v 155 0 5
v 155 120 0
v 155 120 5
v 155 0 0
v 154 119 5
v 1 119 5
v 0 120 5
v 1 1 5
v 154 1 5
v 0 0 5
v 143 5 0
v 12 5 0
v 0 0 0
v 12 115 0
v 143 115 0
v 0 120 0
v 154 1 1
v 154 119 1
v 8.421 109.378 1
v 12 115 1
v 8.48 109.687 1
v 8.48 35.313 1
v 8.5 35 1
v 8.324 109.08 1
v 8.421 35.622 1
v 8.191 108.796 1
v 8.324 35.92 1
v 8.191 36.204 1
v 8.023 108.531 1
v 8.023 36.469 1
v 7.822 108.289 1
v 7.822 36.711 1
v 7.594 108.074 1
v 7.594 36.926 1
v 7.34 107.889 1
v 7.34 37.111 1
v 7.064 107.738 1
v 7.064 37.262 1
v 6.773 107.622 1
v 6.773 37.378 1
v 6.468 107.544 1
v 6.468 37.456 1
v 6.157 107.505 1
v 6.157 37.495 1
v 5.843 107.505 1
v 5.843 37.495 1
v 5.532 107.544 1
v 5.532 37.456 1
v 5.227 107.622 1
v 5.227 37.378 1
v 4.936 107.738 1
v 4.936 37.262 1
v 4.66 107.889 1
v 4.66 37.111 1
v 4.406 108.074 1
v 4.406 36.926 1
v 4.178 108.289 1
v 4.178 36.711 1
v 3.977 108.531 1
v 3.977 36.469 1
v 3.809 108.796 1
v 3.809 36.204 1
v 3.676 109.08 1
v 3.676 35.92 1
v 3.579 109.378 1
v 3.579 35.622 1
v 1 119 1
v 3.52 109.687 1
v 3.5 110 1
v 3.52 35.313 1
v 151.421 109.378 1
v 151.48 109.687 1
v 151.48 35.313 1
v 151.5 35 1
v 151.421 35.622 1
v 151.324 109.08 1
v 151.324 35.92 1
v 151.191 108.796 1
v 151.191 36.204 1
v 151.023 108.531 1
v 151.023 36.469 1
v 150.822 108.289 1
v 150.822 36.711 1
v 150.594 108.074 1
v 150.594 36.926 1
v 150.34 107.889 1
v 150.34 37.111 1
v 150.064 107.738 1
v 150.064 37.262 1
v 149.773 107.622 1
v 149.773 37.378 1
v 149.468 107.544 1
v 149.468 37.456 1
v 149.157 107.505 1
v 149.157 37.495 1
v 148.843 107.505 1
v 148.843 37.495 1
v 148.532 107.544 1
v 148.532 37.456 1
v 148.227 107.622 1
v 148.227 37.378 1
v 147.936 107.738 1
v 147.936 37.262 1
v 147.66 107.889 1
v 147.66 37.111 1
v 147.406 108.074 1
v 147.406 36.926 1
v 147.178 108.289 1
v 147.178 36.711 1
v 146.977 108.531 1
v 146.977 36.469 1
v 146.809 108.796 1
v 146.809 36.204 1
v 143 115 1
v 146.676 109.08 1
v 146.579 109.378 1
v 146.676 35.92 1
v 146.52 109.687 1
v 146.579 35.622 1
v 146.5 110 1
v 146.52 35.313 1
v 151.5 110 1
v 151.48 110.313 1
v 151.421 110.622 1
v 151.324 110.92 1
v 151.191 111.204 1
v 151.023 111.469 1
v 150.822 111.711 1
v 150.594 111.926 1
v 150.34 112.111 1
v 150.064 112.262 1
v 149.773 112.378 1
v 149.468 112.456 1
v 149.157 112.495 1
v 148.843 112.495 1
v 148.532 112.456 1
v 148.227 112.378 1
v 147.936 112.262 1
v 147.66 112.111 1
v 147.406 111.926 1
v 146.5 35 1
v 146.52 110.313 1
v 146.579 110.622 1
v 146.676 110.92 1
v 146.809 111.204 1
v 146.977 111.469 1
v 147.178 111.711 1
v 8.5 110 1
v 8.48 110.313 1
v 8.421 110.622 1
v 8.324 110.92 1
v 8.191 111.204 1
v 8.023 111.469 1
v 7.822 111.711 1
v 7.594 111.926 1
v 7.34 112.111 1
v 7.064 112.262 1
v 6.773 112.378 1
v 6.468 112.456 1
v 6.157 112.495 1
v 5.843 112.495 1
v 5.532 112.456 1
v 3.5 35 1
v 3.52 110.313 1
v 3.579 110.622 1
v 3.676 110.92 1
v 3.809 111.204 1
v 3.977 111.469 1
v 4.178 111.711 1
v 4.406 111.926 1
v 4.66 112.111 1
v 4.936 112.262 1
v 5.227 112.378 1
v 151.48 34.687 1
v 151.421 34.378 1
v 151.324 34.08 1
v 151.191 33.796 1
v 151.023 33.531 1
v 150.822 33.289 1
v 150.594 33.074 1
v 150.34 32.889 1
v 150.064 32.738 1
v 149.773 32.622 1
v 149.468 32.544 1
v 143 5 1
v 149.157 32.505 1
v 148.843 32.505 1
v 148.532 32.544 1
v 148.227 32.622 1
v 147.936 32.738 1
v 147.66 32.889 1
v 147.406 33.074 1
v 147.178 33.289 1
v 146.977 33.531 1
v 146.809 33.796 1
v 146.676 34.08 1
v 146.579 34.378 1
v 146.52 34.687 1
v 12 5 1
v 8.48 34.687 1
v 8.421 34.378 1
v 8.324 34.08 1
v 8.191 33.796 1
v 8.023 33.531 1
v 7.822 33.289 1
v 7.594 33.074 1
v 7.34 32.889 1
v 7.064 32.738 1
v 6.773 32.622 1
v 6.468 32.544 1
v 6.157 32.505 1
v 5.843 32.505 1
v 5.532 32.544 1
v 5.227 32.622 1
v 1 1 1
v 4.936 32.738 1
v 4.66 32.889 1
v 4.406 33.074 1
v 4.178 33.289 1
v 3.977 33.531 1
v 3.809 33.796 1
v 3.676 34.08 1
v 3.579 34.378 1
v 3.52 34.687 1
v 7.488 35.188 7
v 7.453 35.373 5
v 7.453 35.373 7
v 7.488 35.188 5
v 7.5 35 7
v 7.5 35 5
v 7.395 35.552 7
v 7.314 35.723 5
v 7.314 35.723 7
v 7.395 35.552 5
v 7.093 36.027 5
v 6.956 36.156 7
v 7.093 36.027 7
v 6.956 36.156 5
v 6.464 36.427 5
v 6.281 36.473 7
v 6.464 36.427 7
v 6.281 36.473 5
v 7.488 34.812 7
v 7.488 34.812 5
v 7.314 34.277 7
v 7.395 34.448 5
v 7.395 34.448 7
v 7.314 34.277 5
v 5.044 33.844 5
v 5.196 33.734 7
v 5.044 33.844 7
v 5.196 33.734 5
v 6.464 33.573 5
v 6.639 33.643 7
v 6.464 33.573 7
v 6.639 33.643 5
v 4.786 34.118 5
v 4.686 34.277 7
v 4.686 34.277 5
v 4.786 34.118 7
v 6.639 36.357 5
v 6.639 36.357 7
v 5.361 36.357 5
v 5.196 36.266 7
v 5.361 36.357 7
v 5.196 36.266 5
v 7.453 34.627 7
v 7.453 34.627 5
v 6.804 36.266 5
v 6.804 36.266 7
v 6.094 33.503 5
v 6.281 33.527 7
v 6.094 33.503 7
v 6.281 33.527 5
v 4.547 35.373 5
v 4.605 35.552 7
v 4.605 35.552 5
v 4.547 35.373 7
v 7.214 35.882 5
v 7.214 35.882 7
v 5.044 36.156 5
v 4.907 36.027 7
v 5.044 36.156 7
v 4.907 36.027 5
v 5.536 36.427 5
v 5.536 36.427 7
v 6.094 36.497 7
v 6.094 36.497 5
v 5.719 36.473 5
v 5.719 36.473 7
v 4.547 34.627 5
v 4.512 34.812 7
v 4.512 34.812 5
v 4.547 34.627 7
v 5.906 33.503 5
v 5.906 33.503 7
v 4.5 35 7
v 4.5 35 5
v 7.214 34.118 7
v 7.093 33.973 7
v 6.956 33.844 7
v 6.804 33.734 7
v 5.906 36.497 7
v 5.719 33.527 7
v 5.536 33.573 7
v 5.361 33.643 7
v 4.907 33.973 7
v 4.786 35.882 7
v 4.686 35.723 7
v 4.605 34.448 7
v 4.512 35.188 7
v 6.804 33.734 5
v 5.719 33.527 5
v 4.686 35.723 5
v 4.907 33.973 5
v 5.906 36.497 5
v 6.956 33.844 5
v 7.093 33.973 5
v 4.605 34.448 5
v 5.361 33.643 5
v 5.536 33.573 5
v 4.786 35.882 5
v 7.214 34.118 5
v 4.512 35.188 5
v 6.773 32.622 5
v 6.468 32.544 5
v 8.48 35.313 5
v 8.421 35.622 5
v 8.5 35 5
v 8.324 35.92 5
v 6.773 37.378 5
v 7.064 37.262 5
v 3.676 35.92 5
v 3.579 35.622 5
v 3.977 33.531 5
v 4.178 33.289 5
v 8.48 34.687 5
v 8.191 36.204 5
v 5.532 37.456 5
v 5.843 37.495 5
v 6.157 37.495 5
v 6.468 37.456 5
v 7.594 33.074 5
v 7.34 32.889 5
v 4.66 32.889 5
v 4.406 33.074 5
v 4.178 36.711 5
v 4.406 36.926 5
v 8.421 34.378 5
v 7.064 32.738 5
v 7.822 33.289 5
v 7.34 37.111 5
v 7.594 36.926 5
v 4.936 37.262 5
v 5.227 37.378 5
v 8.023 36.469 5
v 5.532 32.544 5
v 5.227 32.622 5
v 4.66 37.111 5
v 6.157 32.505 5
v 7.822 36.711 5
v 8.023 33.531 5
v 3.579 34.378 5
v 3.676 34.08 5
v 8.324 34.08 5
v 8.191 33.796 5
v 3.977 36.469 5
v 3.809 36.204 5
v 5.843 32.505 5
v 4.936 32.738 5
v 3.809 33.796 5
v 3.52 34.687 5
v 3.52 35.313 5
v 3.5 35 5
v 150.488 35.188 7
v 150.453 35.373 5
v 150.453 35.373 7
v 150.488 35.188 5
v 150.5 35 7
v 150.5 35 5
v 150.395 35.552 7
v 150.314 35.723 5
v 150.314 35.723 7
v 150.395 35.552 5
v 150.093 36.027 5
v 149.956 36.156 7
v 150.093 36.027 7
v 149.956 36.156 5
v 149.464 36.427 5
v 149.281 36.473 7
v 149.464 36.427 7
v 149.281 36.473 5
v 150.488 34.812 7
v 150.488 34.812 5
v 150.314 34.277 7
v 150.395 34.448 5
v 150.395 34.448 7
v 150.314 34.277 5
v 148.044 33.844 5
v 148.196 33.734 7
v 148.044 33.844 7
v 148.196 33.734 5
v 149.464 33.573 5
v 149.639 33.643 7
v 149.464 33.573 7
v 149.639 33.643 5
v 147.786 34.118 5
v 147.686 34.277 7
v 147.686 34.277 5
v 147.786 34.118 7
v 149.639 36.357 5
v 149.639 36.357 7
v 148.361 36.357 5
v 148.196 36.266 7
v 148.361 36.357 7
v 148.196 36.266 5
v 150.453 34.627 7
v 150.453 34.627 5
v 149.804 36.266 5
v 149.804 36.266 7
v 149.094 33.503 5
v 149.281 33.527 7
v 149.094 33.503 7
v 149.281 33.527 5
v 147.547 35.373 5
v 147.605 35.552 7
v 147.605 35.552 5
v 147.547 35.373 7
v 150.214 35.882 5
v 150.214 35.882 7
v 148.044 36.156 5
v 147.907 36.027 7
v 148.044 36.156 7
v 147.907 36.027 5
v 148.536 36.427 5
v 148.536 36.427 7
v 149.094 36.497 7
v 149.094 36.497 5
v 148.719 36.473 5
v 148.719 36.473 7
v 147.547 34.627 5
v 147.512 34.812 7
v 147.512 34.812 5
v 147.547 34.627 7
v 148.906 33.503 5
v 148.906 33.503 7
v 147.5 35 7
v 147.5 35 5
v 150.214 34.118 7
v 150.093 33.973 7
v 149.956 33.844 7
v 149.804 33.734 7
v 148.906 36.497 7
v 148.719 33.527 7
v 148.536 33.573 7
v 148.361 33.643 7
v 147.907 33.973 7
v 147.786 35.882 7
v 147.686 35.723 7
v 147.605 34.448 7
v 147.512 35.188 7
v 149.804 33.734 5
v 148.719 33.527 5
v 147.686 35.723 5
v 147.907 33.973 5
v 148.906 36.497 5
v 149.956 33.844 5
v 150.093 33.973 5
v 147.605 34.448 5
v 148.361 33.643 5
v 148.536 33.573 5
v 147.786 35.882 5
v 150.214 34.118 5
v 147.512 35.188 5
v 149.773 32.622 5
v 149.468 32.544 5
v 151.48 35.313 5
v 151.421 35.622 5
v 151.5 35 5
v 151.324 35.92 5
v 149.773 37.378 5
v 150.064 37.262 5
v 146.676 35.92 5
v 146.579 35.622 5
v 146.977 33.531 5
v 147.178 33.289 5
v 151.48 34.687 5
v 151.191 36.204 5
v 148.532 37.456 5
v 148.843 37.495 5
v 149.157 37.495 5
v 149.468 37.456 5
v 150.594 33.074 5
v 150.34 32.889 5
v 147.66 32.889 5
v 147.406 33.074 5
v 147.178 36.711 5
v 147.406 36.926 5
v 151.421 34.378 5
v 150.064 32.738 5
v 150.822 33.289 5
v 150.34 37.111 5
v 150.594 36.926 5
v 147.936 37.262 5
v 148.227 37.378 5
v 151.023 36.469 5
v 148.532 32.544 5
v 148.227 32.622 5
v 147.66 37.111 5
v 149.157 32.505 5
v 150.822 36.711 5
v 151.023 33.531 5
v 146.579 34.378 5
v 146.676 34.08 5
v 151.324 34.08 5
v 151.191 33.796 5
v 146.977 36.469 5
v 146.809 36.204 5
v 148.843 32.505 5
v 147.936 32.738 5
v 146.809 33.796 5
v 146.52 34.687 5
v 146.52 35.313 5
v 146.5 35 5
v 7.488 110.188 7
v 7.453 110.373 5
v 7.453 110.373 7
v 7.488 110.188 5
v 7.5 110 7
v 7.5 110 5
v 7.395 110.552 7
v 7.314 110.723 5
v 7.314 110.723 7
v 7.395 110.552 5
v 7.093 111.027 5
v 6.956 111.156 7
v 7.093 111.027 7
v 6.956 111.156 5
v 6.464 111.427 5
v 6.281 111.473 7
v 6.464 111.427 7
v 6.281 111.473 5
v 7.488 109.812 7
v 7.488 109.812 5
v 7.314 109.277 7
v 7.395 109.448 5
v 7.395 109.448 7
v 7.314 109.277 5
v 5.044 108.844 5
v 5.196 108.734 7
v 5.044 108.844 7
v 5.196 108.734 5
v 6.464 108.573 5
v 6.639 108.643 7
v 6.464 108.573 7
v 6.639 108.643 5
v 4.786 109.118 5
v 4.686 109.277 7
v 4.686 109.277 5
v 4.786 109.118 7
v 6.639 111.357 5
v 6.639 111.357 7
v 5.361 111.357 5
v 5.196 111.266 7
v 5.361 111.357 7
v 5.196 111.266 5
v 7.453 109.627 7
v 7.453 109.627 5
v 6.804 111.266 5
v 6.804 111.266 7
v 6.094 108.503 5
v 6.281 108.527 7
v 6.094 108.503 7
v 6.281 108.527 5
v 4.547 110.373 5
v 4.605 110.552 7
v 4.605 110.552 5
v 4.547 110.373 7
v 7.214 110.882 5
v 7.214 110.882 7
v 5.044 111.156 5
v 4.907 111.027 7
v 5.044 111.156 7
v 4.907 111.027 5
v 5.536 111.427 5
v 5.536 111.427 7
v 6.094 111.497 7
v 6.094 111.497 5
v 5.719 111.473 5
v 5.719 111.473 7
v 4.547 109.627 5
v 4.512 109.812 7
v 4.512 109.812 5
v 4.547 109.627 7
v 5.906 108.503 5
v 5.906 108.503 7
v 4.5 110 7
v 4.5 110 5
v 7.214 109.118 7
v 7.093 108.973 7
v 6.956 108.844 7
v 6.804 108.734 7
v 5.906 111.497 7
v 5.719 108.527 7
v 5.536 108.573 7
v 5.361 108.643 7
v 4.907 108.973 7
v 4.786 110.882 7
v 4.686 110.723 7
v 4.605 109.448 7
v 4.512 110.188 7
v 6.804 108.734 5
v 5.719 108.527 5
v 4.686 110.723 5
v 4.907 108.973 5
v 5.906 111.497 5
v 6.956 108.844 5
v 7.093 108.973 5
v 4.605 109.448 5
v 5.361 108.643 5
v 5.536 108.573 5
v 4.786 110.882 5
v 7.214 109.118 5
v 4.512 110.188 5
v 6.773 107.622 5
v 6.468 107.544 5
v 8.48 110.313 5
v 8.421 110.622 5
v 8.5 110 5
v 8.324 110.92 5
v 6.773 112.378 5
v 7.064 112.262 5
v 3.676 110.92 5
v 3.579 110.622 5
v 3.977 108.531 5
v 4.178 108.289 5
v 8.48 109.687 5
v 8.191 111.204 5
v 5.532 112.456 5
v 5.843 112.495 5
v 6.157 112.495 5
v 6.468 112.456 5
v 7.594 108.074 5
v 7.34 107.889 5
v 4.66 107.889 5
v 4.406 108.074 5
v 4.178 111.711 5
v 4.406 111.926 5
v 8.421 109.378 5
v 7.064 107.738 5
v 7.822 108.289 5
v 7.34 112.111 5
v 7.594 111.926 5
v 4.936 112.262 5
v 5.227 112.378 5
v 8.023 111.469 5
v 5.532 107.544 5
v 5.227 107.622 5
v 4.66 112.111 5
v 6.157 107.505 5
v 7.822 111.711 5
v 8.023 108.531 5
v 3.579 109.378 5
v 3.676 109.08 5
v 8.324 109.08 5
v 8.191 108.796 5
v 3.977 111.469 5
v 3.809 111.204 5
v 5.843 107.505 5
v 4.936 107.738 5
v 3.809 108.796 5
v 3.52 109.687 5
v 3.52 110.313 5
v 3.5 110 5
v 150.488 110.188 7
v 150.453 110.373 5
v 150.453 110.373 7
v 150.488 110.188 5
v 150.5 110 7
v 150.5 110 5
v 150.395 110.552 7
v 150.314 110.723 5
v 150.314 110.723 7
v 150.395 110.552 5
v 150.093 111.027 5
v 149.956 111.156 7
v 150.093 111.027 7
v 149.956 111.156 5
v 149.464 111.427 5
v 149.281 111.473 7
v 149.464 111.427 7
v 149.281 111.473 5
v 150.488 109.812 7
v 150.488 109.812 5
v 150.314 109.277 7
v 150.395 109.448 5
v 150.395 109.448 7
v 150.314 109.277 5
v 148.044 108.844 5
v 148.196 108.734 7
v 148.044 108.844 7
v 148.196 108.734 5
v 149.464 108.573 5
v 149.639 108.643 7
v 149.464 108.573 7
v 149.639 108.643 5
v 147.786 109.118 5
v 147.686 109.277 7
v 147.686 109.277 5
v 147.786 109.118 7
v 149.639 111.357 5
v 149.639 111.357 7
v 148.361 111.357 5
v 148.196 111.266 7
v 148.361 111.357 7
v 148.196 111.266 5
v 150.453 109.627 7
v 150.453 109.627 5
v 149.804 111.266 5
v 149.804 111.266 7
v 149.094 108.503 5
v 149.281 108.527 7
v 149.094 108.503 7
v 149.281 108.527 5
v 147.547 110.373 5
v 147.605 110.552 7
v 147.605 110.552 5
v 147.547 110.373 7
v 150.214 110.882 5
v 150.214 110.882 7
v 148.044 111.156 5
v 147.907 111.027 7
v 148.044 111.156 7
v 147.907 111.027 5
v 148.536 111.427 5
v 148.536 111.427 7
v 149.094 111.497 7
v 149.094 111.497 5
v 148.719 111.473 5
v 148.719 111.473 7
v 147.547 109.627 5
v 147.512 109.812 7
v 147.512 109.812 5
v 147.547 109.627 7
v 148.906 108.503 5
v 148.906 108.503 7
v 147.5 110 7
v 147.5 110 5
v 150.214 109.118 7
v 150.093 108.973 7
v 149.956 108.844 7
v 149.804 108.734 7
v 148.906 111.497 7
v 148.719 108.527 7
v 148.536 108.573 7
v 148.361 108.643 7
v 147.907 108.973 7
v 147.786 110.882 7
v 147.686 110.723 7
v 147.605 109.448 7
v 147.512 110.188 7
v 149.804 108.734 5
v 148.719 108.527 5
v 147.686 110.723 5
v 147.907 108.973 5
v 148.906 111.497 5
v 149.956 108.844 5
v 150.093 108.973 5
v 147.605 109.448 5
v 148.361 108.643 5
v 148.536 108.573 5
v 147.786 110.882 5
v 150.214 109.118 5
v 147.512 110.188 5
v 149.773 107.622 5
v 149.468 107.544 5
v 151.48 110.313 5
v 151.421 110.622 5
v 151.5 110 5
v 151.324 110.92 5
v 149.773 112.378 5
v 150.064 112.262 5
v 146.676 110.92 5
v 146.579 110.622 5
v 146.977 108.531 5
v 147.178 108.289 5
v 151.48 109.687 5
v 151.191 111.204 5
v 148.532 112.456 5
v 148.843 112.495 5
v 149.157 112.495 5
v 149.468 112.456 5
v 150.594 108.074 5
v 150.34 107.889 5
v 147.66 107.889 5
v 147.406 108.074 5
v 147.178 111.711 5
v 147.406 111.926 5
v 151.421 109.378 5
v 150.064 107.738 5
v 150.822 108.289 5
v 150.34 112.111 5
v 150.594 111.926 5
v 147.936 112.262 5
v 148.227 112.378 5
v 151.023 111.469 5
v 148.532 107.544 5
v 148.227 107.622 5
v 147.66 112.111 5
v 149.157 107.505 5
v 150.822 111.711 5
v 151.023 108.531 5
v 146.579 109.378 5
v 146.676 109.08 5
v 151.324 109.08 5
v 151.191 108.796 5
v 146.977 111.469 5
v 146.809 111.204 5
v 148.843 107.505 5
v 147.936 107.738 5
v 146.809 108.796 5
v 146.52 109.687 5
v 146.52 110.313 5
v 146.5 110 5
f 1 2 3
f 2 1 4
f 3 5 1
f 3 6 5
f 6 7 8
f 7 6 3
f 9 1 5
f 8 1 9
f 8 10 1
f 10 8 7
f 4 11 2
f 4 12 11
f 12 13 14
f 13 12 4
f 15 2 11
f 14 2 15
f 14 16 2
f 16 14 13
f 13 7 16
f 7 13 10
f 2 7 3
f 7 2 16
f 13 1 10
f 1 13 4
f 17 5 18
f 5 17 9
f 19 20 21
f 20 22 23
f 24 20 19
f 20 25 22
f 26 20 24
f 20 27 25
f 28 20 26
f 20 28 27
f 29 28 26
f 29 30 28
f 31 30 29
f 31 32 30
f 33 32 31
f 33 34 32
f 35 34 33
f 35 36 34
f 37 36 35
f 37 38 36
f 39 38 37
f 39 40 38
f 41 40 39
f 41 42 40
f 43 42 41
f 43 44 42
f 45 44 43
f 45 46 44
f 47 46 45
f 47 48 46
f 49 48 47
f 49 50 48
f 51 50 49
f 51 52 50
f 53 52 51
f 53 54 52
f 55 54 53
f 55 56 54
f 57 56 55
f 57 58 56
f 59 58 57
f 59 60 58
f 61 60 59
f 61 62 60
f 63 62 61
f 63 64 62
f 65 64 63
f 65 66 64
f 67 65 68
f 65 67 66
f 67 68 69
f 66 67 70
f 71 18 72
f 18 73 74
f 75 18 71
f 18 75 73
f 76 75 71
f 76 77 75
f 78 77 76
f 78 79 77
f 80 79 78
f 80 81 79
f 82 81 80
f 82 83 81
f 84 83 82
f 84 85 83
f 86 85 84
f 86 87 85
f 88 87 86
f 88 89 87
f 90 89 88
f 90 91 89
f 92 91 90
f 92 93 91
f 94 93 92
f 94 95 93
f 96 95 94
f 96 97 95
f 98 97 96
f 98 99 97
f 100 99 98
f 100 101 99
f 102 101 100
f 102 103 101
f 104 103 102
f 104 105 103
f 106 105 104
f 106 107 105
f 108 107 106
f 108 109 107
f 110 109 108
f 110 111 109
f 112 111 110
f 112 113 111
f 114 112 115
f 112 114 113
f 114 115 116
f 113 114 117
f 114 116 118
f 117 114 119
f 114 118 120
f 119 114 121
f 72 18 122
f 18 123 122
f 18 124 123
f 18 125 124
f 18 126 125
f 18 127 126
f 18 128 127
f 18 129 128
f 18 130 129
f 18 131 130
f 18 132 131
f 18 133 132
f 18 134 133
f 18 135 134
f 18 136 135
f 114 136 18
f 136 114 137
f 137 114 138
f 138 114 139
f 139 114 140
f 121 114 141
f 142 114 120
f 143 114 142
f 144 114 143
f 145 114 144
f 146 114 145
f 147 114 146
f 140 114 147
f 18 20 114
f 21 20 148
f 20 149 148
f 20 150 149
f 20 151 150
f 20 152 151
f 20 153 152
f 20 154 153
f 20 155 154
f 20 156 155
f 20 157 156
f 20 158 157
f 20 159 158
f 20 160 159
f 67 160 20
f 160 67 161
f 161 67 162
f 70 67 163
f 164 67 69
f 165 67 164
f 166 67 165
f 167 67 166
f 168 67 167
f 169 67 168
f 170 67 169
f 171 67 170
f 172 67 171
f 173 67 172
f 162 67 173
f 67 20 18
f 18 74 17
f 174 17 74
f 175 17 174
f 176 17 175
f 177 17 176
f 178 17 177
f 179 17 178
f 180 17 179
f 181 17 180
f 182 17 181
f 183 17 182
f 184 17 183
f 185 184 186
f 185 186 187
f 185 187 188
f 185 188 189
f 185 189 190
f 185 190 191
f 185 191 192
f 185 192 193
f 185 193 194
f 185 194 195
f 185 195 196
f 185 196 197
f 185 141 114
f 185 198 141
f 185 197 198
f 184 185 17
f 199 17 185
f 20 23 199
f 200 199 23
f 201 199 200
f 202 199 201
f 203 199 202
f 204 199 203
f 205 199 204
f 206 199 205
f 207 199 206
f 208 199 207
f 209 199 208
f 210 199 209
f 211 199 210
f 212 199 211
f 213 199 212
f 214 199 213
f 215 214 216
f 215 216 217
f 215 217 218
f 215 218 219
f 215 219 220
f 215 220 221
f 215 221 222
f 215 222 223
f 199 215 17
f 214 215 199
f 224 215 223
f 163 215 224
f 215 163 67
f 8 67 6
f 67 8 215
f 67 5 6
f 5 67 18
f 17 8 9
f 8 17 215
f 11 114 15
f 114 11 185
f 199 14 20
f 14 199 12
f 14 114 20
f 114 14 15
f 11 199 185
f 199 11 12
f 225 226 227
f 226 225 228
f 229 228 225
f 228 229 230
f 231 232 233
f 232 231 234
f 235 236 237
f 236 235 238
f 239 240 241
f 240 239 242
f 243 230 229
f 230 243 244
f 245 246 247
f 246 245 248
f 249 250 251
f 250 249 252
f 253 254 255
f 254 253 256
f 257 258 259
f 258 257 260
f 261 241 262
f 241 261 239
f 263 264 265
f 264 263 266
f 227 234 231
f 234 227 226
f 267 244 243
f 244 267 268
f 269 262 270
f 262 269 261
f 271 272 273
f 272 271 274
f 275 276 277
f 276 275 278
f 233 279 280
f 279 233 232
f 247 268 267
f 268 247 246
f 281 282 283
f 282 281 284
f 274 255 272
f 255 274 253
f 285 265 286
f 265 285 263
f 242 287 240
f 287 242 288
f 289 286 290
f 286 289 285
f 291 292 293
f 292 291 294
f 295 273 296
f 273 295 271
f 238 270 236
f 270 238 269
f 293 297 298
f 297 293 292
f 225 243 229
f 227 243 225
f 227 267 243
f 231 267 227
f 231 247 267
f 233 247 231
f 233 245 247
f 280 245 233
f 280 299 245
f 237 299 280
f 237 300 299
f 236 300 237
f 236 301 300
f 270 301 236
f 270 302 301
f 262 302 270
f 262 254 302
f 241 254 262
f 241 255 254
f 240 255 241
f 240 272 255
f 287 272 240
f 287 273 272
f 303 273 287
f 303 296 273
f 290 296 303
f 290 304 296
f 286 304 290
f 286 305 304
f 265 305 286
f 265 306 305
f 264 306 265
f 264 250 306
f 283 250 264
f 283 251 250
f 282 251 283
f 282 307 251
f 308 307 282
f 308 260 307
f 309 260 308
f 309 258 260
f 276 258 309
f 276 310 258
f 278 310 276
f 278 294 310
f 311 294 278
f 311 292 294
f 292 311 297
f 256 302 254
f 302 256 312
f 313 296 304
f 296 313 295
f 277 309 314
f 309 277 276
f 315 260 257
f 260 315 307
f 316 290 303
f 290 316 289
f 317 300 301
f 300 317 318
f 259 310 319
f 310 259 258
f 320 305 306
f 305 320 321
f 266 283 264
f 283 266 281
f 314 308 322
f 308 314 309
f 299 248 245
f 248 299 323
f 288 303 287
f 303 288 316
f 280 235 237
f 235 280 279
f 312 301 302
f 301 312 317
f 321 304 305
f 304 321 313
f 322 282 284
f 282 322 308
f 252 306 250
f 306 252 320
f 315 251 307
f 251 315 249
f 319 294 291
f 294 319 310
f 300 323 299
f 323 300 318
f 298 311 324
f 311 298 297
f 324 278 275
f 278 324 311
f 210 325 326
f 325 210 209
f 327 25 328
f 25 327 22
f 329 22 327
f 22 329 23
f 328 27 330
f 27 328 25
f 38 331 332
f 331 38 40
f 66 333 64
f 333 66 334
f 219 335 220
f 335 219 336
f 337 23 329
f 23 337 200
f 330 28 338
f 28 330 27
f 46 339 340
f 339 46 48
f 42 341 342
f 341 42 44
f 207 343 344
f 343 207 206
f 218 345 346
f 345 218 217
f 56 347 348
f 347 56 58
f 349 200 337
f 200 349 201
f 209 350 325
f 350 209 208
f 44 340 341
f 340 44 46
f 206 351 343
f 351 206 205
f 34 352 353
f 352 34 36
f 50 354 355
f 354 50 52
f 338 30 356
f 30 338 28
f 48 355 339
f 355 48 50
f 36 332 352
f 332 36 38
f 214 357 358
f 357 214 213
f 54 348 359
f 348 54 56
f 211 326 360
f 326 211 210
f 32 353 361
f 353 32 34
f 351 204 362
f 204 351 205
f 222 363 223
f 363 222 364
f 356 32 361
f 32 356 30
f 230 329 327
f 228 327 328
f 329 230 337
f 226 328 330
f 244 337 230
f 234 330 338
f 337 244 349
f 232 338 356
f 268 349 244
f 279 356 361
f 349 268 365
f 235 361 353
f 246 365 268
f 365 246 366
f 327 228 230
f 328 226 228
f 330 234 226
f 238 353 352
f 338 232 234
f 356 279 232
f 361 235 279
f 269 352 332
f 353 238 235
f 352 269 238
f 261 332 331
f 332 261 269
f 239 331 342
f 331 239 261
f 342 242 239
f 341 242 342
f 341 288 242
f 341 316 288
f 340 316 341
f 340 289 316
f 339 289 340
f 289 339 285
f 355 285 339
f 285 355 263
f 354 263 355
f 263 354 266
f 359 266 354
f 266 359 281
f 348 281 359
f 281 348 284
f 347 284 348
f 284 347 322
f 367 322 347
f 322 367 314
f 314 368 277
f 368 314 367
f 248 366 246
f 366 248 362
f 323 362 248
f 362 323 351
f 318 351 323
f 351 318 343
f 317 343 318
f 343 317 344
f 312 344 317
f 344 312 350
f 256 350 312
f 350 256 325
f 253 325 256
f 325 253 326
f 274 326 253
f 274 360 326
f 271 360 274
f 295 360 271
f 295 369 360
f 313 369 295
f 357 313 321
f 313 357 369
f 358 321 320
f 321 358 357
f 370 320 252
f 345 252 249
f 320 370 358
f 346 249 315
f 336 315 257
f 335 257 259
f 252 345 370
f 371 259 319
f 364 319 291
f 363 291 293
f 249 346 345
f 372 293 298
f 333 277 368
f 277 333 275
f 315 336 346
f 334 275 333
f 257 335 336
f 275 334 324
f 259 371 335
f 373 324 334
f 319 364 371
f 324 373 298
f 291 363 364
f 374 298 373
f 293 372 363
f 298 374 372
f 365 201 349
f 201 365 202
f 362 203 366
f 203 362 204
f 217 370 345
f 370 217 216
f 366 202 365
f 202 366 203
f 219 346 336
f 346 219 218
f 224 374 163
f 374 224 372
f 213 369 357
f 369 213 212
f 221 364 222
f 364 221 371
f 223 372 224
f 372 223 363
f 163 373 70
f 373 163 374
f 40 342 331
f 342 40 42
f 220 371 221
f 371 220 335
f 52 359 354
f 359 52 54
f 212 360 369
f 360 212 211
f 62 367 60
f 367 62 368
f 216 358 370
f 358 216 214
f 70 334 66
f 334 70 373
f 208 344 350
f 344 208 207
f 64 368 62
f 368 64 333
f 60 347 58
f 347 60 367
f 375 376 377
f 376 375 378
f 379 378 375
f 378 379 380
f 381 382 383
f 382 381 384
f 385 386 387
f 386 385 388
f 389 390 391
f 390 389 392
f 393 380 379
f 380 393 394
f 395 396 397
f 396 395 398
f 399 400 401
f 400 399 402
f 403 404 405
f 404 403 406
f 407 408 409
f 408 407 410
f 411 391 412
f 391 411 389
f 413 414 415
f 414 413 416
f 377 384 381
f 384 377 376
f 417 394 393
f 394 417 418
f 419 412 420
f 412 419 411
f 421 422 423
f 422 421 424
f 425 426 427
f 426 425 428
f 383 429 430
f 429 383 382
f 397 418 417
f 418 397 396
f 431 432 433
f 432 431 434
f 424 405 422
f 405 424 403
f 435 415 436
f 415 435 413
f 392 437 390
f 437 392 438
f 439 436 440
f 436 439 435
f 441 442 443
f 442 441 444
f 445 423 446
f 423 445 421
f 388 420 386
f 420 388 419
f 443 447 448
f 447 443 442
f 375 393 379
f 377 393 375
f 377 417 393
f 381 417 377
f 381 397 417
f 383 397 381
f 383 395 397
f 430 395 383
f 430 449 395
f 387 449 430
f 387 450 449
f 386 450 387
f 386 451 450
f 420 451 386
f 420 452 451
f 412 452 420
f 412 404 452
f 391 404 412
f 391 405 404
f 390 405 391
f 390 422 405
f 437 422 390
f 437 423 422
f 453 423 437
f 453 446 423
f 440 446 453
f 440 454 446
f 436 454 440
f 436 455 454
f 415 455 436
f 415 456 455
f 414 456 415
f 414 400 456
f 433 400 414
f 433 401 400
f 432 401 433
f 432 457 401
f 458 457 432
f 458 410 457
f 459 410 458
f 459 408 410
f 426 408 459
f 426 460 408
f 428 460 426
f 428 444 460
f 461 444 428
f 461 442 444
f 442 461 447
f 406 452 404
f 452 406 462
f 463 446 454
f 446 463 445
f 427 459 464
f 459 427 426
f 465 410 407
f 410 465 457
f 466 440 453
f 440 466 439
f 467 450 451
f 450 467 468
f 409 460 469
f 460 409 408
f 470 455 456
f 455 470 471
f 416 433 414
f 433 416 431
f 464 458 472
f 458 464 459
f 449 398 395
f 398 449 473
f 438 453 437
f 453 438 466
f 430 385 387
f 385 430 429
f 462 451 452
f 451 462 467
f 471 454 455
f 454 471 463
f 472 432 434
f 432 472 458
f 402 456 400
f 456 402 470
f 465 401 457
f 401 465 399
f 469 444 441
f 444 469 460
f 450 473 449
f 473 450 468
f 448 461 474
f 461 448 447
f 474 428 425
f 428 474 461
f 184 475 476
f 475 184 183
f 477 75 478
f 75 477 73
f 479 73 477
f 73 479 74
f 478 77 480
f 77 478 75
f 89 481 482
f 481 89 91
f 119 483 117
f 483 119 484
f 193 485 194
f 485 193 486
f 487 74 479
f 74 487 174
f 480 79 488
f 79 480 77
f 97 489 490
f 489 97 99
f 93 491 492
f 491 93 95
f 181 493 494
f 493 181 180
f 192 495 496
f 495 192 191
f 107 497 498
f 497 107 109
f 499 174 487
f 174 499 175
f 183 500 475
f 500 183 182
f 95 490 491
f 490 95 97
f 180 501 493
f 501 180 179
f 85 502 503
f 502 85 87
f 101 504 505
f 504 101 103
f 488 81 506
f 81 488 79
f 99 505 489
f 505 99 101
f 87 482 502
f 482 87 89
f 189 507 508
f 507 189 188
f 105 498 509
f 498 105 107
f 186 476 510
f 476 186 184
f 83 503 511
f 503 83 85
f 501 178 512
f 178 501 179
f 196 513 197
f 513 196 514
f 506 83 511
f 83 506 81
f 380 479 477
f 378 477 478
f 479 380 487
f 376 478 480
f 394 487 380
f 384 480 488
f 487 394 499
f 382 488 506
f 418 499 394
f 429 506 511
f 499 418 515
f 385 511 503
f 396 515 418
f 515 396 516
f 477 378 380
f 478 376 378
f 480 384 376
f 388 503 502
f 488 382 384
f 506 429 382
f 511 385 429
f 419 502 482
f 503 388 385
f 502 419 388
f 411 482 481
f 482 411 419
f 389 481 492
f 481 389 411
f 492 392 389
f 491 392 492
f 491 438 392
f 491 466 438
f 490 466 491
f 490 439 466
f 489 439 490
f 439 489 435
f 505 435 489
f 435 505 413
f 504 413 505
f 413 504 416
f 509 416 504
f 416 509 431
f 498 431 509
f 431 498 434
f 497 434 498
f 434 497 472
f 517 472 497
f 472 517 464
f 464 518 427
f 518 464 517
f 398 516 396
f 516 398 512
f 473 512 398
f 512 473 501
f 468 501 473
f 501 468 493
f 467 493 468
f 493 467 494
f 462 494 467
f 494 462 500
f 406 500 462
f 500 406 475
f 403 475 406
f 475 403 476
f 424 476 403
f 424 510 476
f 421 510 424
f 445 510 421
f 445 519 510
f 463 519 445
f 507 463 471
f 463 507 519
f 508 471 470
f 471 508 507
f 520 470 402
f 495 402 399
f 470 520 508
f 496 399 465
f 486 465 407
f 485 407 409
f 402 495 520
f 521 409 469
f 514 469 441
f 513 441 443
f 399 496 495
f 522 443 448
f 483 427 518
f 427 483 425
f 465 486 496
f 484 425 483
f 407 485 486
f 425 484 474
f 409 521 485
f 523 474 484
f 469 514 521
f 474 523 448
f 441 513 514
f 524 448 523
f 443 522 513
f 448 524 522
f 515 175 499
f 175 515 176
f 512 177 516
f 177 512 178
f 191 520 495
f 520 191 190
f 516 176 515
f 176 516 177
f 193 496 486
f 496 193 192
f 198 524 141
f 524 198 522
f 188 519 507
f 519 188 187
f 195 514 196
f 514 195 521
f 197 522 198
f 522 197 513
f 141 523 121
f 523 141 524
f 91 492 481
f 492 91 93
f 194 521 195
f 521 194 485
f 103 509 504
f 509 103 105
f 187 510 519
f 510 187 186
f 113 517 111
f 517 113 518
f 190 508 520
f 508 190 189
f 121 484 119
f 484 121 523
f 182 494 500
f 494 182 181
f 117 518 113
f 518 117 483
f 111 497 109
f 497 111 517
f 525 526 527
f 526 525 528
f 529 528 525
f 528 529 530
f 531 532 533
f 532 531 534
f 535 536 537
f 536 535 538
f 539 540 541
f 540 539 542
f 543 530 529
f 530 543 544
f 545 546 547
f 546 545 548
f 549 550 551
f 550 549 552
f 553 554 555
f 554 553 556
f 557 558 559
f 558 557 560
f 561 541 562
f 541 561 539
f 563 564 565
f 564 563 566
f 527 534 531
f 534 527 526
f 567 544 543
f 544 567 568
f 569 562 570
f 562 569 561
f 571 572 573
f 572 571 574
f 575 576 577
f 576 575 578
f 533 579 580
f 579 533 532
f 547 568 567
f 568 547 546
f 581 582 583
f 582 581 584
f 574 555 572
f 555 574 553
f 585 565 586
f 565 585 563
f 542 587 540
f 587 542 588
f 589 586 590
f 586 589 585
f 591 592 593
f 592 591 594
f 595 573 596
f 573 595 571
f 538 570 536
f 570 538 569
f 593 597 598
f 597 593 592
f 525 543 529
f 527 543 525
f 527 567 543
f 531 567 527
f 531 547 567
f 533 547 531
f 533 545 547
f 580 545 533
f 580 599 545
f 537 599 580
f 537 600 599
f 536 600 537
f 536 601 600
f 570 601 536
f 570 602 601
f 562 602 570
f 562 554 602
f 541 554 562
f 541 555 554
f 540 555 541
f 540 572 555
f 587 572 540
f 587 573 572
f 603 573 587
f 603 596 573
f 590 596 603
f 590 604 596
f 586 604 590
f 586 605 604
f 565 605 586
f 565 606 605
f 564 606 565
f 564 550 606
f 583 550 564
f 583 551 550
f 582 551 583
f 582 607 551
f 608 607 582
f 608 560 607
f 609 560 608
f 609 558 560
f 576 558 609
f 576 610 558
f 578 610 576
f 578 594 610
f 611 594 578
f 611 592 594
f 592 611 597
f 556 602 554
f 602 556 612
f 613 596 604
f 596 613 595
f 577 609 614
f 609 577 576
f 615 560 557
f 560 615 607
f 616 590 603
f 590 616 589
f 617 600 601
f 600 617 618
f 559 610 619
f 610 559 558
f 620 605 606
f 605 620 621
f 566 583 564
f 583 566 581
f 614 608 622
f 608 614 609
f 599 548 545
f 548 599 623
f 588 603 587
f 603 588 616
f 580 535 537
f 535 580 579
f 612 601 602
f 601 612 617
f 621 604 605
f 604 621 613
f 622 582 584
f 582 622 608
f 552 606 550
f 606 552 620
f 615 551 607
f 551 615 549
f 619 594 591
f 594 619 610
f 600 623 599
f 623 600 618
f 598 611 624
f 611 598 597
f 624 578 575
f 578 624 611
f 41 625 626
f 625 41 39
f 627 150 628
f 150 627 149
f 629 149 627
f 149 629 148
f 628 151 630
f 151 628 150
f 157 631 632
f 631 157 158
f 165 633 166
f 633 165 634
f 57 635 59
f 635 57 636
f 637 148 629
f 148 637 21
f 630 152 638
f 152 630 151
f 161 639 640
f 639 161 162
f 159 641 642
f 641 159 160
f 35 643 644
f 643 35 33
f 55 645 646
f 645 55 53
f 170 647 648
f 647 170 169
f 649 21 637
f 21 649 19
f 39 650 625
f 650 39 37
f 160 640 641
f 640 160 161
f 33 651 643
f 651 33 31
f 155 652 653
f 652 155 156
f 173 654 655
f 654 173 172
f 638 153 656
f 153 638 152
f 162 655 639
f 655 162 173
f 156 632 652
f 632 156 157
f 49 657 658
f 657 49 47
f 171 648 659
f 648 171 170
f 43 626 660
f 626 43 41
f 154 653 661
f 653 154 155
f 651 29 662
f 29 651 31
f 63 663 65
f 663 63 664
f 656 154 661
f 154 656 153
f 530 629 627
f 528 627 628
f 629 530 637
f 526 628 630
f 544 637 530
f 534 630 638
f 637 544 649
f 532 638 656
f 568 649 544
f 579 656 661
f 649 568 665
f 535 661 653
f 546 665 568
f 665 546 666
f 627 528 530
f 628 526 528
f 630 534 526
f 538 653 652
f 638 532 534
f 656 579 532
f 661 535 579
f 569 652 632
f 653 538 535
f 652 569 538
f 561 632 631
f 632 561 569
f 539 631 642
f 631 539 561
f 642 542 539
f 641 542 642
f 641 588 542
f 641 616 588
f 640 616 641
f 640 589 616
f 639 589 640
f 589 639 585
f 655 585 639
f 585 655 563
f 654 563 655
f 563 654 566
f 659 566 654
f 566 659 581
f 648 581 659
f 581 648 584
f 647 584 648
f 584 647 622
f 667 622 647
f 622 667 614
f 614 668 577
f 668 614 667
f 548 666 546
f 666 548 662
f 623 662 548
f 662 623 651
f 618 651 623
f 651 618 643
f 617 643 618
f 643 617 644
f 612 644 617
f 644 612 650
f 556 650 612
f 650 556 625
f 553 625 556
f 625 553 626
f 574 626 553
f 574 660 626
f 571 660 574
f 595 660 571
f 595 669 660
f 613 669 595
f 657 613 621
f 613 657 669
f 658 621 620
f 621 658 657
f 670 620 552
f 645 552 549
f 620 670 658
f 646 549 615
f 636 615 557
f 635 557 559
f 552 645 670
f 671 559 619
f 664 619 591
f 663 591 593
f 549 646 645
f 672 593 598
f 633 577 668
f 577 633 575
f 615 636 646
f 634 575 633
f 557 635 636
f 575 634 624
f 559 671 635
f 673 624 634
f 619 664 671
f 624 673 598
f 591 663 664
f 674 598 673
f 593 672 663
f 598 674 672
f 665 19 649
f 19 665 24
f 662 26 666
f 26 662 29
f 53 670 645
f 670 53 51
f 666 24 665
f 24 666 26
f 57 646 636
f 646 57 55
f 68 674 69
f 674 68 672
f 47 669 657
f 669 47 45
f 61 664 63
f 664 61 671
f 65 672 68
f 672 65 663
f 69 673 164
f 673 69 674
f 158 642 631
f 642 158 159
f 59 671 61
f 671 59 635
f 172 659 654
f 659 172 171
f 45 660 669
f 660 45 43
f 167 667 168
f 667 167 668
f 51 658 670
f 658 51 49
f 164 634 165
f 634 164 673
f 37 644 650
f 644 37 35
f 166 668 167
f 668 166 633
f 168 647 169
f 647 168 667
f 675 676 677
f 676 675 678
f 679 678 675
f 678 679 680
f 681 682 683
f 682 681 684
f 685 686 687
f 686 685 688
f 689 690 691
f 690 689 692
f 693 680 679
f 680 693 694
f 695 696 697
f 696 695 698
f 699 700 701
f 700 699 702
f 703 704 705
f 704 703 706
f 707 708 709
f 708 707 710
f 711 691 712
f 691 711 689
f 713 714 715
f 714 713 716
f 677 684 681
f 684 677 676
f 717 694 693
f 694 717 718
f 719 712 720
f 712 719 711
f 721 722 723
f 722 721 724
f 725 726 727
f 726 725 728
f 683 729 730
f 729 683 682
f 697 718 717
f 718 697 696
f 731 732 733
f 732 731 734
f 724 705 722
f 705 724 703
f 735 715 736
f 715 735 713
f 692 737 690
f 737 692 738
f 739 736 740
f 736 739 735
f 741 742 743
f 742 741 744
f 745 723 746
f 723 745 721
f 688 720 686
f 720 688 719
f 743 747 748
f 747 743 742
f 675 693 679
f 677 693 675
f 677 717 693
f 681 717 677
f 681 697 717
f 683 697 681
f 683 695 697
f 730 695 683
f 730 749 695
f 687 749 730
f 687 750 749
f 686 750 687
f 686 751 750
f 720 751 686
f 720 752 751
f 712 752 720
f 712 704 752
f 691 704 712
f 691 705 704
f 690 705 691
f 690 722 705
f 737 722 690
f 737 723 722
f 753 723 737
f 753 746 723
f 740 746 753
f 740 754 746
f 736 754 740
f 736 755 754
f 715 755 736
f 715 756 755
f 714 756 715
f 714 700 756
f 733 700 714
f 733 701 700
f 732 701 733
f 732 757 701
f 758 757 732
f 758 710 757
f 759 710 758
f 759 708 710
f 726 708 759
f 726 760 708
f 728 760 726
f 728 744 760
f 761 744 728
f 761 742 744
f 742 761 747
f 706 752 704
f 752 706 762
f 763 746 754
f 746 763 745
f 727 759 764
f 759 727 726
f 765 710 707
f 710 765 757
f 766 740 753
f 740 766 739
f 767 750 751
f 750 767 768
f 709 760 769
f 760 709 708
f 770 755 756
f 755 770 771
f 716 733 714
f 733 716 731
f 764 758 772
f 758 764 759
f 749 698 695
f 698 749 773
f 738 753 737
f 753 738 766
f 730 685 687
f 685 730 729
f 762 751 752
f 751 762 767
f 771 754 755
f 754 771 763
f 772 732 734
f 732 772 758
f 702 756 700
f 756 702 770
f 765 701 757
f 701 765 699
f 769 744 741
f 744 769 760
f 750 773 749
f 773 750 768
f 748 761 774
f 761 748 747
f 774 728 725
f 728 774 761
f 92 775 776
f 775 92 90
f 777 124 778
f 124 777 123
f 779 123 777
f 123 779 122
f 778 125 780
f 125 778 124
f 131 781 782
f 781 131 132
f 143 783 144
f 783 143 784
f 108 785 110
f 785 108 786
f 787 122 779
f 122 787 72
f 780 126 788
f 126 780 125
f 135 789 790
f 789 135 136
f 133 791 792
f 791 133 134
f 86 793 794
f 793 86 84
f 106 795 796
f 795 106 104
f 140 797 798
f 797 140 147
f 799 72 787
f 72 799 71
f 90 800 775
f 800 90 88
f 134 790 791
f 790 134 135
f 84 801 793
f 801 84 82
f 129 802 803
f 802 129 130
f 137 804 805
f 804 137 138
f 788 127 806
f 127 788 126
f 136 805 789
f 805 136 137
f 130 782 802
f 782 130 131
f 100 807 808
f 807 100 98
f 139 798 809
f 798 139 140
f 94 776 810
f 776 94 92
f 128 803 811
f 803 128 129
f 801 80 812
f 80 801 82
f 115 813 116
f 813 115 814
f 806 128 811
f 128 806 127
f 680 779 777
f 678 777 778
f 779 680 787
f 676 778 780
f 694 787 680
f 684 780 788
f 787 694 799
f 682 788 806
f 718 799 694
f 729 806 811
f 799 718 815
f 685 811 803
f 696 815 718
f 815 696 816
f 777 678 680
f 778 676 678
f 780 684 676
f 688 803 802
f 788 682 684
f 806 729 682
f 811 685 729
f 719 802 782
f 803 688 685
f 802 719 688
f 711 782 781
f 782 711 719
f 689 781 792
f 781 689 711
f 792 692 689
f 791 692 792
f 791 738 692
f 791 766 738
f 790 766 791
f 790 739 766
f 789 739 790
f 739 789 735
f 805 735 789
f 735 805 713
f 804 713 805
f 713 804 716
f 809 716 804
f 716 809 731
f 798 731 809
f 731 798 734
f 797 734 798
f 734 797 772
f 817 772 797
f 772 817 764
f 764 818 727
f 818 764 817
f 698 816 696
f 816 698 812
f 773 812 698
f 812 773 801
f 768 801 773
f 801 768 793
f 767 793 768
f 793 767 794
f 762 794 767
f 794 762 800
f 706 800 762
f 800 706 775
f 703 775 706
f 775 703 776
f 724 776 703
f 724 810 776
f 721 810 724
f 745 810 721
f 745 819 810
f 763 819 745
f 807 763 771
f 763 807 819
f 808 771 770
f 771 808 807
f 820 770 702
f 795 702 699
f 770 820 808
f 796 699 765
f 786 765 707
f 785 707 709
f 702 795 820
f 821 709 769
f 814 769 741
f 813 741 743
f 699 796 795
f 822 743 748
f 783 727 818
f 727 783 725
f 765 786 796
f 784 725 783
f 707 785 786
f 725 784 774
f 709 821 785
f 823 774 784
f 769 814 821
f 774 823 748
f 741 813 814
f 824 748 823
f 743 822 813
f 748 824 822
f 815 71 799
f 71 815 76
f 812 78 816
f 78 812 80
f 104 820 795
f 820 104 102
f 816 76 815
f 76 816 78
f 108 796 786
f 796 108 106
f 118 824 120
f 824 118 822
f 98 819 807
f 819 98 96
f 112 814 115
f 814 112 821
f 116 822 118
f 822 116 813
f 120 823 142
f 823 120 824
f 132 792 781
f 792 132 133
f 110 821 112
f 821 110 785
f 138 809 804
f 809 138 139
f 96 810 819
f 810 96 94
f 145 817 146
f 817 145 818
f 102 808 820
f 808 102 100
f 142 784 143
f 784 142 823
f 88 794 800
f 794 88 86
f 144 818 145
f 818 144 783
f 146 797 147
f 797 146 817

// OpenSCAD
/**

Box for 8 way Modbus relay board
https://www.aliexpress.com/item/1005002356037000.html

Licenced as Creative Commons Attribution Non Commercial 3.0
See https://creativecommons.org/licenses/by-nc/3.0/

Specifically you may not sell the design or products using the design.
You're welcome to use the design to build things for your own use :)



80 x 148

75mm fixings
142mm

Hole diameter 3mm

**/

box_x = 155;
box_y = 120;
box_z = 5;

pcb_x = 148;
pcb_y = 80;
pcb_z = 25;

wall = 1;

difference() {
    cube([box_x, box_y, box_z]);

    translate([wall, wall, wall]) {
        cube([
            (box_x - (2*wall)),
            (box_y - (2*wall)),
            box_z
        ]);
    }
    
    // Save time and filament by chopping a chunk out of the back
    translate([12, 5, 0]) {
        cube([box_x-(2*12), box_y-(2*5), 2*wall]);
    }
}

translate([(box_x - 143)/2, (box_y - 75) - 10, 0]){
    bosses(x = 143, y = 75);
}

module bosses(
    x = 0,
    y = 0,
) {
    // Bosses for PCB mounting
    translate([0, 0, 0]) { boss(); } // Bottom left
    translate([x, 0, 0]) { boss(); } // Bottom right
    translate([0, y, 0]) { boss(); } // Top left
    translate([x, y, 0]) { boss(); } // Top right
}

module boss() {
    boss_d1 = 5;
    boss_d2 = 3;

    cylinder(h = 7, d = 3, $fn = 50);
    cylinder(h = 5, d = 5, $fn = 50);
}
